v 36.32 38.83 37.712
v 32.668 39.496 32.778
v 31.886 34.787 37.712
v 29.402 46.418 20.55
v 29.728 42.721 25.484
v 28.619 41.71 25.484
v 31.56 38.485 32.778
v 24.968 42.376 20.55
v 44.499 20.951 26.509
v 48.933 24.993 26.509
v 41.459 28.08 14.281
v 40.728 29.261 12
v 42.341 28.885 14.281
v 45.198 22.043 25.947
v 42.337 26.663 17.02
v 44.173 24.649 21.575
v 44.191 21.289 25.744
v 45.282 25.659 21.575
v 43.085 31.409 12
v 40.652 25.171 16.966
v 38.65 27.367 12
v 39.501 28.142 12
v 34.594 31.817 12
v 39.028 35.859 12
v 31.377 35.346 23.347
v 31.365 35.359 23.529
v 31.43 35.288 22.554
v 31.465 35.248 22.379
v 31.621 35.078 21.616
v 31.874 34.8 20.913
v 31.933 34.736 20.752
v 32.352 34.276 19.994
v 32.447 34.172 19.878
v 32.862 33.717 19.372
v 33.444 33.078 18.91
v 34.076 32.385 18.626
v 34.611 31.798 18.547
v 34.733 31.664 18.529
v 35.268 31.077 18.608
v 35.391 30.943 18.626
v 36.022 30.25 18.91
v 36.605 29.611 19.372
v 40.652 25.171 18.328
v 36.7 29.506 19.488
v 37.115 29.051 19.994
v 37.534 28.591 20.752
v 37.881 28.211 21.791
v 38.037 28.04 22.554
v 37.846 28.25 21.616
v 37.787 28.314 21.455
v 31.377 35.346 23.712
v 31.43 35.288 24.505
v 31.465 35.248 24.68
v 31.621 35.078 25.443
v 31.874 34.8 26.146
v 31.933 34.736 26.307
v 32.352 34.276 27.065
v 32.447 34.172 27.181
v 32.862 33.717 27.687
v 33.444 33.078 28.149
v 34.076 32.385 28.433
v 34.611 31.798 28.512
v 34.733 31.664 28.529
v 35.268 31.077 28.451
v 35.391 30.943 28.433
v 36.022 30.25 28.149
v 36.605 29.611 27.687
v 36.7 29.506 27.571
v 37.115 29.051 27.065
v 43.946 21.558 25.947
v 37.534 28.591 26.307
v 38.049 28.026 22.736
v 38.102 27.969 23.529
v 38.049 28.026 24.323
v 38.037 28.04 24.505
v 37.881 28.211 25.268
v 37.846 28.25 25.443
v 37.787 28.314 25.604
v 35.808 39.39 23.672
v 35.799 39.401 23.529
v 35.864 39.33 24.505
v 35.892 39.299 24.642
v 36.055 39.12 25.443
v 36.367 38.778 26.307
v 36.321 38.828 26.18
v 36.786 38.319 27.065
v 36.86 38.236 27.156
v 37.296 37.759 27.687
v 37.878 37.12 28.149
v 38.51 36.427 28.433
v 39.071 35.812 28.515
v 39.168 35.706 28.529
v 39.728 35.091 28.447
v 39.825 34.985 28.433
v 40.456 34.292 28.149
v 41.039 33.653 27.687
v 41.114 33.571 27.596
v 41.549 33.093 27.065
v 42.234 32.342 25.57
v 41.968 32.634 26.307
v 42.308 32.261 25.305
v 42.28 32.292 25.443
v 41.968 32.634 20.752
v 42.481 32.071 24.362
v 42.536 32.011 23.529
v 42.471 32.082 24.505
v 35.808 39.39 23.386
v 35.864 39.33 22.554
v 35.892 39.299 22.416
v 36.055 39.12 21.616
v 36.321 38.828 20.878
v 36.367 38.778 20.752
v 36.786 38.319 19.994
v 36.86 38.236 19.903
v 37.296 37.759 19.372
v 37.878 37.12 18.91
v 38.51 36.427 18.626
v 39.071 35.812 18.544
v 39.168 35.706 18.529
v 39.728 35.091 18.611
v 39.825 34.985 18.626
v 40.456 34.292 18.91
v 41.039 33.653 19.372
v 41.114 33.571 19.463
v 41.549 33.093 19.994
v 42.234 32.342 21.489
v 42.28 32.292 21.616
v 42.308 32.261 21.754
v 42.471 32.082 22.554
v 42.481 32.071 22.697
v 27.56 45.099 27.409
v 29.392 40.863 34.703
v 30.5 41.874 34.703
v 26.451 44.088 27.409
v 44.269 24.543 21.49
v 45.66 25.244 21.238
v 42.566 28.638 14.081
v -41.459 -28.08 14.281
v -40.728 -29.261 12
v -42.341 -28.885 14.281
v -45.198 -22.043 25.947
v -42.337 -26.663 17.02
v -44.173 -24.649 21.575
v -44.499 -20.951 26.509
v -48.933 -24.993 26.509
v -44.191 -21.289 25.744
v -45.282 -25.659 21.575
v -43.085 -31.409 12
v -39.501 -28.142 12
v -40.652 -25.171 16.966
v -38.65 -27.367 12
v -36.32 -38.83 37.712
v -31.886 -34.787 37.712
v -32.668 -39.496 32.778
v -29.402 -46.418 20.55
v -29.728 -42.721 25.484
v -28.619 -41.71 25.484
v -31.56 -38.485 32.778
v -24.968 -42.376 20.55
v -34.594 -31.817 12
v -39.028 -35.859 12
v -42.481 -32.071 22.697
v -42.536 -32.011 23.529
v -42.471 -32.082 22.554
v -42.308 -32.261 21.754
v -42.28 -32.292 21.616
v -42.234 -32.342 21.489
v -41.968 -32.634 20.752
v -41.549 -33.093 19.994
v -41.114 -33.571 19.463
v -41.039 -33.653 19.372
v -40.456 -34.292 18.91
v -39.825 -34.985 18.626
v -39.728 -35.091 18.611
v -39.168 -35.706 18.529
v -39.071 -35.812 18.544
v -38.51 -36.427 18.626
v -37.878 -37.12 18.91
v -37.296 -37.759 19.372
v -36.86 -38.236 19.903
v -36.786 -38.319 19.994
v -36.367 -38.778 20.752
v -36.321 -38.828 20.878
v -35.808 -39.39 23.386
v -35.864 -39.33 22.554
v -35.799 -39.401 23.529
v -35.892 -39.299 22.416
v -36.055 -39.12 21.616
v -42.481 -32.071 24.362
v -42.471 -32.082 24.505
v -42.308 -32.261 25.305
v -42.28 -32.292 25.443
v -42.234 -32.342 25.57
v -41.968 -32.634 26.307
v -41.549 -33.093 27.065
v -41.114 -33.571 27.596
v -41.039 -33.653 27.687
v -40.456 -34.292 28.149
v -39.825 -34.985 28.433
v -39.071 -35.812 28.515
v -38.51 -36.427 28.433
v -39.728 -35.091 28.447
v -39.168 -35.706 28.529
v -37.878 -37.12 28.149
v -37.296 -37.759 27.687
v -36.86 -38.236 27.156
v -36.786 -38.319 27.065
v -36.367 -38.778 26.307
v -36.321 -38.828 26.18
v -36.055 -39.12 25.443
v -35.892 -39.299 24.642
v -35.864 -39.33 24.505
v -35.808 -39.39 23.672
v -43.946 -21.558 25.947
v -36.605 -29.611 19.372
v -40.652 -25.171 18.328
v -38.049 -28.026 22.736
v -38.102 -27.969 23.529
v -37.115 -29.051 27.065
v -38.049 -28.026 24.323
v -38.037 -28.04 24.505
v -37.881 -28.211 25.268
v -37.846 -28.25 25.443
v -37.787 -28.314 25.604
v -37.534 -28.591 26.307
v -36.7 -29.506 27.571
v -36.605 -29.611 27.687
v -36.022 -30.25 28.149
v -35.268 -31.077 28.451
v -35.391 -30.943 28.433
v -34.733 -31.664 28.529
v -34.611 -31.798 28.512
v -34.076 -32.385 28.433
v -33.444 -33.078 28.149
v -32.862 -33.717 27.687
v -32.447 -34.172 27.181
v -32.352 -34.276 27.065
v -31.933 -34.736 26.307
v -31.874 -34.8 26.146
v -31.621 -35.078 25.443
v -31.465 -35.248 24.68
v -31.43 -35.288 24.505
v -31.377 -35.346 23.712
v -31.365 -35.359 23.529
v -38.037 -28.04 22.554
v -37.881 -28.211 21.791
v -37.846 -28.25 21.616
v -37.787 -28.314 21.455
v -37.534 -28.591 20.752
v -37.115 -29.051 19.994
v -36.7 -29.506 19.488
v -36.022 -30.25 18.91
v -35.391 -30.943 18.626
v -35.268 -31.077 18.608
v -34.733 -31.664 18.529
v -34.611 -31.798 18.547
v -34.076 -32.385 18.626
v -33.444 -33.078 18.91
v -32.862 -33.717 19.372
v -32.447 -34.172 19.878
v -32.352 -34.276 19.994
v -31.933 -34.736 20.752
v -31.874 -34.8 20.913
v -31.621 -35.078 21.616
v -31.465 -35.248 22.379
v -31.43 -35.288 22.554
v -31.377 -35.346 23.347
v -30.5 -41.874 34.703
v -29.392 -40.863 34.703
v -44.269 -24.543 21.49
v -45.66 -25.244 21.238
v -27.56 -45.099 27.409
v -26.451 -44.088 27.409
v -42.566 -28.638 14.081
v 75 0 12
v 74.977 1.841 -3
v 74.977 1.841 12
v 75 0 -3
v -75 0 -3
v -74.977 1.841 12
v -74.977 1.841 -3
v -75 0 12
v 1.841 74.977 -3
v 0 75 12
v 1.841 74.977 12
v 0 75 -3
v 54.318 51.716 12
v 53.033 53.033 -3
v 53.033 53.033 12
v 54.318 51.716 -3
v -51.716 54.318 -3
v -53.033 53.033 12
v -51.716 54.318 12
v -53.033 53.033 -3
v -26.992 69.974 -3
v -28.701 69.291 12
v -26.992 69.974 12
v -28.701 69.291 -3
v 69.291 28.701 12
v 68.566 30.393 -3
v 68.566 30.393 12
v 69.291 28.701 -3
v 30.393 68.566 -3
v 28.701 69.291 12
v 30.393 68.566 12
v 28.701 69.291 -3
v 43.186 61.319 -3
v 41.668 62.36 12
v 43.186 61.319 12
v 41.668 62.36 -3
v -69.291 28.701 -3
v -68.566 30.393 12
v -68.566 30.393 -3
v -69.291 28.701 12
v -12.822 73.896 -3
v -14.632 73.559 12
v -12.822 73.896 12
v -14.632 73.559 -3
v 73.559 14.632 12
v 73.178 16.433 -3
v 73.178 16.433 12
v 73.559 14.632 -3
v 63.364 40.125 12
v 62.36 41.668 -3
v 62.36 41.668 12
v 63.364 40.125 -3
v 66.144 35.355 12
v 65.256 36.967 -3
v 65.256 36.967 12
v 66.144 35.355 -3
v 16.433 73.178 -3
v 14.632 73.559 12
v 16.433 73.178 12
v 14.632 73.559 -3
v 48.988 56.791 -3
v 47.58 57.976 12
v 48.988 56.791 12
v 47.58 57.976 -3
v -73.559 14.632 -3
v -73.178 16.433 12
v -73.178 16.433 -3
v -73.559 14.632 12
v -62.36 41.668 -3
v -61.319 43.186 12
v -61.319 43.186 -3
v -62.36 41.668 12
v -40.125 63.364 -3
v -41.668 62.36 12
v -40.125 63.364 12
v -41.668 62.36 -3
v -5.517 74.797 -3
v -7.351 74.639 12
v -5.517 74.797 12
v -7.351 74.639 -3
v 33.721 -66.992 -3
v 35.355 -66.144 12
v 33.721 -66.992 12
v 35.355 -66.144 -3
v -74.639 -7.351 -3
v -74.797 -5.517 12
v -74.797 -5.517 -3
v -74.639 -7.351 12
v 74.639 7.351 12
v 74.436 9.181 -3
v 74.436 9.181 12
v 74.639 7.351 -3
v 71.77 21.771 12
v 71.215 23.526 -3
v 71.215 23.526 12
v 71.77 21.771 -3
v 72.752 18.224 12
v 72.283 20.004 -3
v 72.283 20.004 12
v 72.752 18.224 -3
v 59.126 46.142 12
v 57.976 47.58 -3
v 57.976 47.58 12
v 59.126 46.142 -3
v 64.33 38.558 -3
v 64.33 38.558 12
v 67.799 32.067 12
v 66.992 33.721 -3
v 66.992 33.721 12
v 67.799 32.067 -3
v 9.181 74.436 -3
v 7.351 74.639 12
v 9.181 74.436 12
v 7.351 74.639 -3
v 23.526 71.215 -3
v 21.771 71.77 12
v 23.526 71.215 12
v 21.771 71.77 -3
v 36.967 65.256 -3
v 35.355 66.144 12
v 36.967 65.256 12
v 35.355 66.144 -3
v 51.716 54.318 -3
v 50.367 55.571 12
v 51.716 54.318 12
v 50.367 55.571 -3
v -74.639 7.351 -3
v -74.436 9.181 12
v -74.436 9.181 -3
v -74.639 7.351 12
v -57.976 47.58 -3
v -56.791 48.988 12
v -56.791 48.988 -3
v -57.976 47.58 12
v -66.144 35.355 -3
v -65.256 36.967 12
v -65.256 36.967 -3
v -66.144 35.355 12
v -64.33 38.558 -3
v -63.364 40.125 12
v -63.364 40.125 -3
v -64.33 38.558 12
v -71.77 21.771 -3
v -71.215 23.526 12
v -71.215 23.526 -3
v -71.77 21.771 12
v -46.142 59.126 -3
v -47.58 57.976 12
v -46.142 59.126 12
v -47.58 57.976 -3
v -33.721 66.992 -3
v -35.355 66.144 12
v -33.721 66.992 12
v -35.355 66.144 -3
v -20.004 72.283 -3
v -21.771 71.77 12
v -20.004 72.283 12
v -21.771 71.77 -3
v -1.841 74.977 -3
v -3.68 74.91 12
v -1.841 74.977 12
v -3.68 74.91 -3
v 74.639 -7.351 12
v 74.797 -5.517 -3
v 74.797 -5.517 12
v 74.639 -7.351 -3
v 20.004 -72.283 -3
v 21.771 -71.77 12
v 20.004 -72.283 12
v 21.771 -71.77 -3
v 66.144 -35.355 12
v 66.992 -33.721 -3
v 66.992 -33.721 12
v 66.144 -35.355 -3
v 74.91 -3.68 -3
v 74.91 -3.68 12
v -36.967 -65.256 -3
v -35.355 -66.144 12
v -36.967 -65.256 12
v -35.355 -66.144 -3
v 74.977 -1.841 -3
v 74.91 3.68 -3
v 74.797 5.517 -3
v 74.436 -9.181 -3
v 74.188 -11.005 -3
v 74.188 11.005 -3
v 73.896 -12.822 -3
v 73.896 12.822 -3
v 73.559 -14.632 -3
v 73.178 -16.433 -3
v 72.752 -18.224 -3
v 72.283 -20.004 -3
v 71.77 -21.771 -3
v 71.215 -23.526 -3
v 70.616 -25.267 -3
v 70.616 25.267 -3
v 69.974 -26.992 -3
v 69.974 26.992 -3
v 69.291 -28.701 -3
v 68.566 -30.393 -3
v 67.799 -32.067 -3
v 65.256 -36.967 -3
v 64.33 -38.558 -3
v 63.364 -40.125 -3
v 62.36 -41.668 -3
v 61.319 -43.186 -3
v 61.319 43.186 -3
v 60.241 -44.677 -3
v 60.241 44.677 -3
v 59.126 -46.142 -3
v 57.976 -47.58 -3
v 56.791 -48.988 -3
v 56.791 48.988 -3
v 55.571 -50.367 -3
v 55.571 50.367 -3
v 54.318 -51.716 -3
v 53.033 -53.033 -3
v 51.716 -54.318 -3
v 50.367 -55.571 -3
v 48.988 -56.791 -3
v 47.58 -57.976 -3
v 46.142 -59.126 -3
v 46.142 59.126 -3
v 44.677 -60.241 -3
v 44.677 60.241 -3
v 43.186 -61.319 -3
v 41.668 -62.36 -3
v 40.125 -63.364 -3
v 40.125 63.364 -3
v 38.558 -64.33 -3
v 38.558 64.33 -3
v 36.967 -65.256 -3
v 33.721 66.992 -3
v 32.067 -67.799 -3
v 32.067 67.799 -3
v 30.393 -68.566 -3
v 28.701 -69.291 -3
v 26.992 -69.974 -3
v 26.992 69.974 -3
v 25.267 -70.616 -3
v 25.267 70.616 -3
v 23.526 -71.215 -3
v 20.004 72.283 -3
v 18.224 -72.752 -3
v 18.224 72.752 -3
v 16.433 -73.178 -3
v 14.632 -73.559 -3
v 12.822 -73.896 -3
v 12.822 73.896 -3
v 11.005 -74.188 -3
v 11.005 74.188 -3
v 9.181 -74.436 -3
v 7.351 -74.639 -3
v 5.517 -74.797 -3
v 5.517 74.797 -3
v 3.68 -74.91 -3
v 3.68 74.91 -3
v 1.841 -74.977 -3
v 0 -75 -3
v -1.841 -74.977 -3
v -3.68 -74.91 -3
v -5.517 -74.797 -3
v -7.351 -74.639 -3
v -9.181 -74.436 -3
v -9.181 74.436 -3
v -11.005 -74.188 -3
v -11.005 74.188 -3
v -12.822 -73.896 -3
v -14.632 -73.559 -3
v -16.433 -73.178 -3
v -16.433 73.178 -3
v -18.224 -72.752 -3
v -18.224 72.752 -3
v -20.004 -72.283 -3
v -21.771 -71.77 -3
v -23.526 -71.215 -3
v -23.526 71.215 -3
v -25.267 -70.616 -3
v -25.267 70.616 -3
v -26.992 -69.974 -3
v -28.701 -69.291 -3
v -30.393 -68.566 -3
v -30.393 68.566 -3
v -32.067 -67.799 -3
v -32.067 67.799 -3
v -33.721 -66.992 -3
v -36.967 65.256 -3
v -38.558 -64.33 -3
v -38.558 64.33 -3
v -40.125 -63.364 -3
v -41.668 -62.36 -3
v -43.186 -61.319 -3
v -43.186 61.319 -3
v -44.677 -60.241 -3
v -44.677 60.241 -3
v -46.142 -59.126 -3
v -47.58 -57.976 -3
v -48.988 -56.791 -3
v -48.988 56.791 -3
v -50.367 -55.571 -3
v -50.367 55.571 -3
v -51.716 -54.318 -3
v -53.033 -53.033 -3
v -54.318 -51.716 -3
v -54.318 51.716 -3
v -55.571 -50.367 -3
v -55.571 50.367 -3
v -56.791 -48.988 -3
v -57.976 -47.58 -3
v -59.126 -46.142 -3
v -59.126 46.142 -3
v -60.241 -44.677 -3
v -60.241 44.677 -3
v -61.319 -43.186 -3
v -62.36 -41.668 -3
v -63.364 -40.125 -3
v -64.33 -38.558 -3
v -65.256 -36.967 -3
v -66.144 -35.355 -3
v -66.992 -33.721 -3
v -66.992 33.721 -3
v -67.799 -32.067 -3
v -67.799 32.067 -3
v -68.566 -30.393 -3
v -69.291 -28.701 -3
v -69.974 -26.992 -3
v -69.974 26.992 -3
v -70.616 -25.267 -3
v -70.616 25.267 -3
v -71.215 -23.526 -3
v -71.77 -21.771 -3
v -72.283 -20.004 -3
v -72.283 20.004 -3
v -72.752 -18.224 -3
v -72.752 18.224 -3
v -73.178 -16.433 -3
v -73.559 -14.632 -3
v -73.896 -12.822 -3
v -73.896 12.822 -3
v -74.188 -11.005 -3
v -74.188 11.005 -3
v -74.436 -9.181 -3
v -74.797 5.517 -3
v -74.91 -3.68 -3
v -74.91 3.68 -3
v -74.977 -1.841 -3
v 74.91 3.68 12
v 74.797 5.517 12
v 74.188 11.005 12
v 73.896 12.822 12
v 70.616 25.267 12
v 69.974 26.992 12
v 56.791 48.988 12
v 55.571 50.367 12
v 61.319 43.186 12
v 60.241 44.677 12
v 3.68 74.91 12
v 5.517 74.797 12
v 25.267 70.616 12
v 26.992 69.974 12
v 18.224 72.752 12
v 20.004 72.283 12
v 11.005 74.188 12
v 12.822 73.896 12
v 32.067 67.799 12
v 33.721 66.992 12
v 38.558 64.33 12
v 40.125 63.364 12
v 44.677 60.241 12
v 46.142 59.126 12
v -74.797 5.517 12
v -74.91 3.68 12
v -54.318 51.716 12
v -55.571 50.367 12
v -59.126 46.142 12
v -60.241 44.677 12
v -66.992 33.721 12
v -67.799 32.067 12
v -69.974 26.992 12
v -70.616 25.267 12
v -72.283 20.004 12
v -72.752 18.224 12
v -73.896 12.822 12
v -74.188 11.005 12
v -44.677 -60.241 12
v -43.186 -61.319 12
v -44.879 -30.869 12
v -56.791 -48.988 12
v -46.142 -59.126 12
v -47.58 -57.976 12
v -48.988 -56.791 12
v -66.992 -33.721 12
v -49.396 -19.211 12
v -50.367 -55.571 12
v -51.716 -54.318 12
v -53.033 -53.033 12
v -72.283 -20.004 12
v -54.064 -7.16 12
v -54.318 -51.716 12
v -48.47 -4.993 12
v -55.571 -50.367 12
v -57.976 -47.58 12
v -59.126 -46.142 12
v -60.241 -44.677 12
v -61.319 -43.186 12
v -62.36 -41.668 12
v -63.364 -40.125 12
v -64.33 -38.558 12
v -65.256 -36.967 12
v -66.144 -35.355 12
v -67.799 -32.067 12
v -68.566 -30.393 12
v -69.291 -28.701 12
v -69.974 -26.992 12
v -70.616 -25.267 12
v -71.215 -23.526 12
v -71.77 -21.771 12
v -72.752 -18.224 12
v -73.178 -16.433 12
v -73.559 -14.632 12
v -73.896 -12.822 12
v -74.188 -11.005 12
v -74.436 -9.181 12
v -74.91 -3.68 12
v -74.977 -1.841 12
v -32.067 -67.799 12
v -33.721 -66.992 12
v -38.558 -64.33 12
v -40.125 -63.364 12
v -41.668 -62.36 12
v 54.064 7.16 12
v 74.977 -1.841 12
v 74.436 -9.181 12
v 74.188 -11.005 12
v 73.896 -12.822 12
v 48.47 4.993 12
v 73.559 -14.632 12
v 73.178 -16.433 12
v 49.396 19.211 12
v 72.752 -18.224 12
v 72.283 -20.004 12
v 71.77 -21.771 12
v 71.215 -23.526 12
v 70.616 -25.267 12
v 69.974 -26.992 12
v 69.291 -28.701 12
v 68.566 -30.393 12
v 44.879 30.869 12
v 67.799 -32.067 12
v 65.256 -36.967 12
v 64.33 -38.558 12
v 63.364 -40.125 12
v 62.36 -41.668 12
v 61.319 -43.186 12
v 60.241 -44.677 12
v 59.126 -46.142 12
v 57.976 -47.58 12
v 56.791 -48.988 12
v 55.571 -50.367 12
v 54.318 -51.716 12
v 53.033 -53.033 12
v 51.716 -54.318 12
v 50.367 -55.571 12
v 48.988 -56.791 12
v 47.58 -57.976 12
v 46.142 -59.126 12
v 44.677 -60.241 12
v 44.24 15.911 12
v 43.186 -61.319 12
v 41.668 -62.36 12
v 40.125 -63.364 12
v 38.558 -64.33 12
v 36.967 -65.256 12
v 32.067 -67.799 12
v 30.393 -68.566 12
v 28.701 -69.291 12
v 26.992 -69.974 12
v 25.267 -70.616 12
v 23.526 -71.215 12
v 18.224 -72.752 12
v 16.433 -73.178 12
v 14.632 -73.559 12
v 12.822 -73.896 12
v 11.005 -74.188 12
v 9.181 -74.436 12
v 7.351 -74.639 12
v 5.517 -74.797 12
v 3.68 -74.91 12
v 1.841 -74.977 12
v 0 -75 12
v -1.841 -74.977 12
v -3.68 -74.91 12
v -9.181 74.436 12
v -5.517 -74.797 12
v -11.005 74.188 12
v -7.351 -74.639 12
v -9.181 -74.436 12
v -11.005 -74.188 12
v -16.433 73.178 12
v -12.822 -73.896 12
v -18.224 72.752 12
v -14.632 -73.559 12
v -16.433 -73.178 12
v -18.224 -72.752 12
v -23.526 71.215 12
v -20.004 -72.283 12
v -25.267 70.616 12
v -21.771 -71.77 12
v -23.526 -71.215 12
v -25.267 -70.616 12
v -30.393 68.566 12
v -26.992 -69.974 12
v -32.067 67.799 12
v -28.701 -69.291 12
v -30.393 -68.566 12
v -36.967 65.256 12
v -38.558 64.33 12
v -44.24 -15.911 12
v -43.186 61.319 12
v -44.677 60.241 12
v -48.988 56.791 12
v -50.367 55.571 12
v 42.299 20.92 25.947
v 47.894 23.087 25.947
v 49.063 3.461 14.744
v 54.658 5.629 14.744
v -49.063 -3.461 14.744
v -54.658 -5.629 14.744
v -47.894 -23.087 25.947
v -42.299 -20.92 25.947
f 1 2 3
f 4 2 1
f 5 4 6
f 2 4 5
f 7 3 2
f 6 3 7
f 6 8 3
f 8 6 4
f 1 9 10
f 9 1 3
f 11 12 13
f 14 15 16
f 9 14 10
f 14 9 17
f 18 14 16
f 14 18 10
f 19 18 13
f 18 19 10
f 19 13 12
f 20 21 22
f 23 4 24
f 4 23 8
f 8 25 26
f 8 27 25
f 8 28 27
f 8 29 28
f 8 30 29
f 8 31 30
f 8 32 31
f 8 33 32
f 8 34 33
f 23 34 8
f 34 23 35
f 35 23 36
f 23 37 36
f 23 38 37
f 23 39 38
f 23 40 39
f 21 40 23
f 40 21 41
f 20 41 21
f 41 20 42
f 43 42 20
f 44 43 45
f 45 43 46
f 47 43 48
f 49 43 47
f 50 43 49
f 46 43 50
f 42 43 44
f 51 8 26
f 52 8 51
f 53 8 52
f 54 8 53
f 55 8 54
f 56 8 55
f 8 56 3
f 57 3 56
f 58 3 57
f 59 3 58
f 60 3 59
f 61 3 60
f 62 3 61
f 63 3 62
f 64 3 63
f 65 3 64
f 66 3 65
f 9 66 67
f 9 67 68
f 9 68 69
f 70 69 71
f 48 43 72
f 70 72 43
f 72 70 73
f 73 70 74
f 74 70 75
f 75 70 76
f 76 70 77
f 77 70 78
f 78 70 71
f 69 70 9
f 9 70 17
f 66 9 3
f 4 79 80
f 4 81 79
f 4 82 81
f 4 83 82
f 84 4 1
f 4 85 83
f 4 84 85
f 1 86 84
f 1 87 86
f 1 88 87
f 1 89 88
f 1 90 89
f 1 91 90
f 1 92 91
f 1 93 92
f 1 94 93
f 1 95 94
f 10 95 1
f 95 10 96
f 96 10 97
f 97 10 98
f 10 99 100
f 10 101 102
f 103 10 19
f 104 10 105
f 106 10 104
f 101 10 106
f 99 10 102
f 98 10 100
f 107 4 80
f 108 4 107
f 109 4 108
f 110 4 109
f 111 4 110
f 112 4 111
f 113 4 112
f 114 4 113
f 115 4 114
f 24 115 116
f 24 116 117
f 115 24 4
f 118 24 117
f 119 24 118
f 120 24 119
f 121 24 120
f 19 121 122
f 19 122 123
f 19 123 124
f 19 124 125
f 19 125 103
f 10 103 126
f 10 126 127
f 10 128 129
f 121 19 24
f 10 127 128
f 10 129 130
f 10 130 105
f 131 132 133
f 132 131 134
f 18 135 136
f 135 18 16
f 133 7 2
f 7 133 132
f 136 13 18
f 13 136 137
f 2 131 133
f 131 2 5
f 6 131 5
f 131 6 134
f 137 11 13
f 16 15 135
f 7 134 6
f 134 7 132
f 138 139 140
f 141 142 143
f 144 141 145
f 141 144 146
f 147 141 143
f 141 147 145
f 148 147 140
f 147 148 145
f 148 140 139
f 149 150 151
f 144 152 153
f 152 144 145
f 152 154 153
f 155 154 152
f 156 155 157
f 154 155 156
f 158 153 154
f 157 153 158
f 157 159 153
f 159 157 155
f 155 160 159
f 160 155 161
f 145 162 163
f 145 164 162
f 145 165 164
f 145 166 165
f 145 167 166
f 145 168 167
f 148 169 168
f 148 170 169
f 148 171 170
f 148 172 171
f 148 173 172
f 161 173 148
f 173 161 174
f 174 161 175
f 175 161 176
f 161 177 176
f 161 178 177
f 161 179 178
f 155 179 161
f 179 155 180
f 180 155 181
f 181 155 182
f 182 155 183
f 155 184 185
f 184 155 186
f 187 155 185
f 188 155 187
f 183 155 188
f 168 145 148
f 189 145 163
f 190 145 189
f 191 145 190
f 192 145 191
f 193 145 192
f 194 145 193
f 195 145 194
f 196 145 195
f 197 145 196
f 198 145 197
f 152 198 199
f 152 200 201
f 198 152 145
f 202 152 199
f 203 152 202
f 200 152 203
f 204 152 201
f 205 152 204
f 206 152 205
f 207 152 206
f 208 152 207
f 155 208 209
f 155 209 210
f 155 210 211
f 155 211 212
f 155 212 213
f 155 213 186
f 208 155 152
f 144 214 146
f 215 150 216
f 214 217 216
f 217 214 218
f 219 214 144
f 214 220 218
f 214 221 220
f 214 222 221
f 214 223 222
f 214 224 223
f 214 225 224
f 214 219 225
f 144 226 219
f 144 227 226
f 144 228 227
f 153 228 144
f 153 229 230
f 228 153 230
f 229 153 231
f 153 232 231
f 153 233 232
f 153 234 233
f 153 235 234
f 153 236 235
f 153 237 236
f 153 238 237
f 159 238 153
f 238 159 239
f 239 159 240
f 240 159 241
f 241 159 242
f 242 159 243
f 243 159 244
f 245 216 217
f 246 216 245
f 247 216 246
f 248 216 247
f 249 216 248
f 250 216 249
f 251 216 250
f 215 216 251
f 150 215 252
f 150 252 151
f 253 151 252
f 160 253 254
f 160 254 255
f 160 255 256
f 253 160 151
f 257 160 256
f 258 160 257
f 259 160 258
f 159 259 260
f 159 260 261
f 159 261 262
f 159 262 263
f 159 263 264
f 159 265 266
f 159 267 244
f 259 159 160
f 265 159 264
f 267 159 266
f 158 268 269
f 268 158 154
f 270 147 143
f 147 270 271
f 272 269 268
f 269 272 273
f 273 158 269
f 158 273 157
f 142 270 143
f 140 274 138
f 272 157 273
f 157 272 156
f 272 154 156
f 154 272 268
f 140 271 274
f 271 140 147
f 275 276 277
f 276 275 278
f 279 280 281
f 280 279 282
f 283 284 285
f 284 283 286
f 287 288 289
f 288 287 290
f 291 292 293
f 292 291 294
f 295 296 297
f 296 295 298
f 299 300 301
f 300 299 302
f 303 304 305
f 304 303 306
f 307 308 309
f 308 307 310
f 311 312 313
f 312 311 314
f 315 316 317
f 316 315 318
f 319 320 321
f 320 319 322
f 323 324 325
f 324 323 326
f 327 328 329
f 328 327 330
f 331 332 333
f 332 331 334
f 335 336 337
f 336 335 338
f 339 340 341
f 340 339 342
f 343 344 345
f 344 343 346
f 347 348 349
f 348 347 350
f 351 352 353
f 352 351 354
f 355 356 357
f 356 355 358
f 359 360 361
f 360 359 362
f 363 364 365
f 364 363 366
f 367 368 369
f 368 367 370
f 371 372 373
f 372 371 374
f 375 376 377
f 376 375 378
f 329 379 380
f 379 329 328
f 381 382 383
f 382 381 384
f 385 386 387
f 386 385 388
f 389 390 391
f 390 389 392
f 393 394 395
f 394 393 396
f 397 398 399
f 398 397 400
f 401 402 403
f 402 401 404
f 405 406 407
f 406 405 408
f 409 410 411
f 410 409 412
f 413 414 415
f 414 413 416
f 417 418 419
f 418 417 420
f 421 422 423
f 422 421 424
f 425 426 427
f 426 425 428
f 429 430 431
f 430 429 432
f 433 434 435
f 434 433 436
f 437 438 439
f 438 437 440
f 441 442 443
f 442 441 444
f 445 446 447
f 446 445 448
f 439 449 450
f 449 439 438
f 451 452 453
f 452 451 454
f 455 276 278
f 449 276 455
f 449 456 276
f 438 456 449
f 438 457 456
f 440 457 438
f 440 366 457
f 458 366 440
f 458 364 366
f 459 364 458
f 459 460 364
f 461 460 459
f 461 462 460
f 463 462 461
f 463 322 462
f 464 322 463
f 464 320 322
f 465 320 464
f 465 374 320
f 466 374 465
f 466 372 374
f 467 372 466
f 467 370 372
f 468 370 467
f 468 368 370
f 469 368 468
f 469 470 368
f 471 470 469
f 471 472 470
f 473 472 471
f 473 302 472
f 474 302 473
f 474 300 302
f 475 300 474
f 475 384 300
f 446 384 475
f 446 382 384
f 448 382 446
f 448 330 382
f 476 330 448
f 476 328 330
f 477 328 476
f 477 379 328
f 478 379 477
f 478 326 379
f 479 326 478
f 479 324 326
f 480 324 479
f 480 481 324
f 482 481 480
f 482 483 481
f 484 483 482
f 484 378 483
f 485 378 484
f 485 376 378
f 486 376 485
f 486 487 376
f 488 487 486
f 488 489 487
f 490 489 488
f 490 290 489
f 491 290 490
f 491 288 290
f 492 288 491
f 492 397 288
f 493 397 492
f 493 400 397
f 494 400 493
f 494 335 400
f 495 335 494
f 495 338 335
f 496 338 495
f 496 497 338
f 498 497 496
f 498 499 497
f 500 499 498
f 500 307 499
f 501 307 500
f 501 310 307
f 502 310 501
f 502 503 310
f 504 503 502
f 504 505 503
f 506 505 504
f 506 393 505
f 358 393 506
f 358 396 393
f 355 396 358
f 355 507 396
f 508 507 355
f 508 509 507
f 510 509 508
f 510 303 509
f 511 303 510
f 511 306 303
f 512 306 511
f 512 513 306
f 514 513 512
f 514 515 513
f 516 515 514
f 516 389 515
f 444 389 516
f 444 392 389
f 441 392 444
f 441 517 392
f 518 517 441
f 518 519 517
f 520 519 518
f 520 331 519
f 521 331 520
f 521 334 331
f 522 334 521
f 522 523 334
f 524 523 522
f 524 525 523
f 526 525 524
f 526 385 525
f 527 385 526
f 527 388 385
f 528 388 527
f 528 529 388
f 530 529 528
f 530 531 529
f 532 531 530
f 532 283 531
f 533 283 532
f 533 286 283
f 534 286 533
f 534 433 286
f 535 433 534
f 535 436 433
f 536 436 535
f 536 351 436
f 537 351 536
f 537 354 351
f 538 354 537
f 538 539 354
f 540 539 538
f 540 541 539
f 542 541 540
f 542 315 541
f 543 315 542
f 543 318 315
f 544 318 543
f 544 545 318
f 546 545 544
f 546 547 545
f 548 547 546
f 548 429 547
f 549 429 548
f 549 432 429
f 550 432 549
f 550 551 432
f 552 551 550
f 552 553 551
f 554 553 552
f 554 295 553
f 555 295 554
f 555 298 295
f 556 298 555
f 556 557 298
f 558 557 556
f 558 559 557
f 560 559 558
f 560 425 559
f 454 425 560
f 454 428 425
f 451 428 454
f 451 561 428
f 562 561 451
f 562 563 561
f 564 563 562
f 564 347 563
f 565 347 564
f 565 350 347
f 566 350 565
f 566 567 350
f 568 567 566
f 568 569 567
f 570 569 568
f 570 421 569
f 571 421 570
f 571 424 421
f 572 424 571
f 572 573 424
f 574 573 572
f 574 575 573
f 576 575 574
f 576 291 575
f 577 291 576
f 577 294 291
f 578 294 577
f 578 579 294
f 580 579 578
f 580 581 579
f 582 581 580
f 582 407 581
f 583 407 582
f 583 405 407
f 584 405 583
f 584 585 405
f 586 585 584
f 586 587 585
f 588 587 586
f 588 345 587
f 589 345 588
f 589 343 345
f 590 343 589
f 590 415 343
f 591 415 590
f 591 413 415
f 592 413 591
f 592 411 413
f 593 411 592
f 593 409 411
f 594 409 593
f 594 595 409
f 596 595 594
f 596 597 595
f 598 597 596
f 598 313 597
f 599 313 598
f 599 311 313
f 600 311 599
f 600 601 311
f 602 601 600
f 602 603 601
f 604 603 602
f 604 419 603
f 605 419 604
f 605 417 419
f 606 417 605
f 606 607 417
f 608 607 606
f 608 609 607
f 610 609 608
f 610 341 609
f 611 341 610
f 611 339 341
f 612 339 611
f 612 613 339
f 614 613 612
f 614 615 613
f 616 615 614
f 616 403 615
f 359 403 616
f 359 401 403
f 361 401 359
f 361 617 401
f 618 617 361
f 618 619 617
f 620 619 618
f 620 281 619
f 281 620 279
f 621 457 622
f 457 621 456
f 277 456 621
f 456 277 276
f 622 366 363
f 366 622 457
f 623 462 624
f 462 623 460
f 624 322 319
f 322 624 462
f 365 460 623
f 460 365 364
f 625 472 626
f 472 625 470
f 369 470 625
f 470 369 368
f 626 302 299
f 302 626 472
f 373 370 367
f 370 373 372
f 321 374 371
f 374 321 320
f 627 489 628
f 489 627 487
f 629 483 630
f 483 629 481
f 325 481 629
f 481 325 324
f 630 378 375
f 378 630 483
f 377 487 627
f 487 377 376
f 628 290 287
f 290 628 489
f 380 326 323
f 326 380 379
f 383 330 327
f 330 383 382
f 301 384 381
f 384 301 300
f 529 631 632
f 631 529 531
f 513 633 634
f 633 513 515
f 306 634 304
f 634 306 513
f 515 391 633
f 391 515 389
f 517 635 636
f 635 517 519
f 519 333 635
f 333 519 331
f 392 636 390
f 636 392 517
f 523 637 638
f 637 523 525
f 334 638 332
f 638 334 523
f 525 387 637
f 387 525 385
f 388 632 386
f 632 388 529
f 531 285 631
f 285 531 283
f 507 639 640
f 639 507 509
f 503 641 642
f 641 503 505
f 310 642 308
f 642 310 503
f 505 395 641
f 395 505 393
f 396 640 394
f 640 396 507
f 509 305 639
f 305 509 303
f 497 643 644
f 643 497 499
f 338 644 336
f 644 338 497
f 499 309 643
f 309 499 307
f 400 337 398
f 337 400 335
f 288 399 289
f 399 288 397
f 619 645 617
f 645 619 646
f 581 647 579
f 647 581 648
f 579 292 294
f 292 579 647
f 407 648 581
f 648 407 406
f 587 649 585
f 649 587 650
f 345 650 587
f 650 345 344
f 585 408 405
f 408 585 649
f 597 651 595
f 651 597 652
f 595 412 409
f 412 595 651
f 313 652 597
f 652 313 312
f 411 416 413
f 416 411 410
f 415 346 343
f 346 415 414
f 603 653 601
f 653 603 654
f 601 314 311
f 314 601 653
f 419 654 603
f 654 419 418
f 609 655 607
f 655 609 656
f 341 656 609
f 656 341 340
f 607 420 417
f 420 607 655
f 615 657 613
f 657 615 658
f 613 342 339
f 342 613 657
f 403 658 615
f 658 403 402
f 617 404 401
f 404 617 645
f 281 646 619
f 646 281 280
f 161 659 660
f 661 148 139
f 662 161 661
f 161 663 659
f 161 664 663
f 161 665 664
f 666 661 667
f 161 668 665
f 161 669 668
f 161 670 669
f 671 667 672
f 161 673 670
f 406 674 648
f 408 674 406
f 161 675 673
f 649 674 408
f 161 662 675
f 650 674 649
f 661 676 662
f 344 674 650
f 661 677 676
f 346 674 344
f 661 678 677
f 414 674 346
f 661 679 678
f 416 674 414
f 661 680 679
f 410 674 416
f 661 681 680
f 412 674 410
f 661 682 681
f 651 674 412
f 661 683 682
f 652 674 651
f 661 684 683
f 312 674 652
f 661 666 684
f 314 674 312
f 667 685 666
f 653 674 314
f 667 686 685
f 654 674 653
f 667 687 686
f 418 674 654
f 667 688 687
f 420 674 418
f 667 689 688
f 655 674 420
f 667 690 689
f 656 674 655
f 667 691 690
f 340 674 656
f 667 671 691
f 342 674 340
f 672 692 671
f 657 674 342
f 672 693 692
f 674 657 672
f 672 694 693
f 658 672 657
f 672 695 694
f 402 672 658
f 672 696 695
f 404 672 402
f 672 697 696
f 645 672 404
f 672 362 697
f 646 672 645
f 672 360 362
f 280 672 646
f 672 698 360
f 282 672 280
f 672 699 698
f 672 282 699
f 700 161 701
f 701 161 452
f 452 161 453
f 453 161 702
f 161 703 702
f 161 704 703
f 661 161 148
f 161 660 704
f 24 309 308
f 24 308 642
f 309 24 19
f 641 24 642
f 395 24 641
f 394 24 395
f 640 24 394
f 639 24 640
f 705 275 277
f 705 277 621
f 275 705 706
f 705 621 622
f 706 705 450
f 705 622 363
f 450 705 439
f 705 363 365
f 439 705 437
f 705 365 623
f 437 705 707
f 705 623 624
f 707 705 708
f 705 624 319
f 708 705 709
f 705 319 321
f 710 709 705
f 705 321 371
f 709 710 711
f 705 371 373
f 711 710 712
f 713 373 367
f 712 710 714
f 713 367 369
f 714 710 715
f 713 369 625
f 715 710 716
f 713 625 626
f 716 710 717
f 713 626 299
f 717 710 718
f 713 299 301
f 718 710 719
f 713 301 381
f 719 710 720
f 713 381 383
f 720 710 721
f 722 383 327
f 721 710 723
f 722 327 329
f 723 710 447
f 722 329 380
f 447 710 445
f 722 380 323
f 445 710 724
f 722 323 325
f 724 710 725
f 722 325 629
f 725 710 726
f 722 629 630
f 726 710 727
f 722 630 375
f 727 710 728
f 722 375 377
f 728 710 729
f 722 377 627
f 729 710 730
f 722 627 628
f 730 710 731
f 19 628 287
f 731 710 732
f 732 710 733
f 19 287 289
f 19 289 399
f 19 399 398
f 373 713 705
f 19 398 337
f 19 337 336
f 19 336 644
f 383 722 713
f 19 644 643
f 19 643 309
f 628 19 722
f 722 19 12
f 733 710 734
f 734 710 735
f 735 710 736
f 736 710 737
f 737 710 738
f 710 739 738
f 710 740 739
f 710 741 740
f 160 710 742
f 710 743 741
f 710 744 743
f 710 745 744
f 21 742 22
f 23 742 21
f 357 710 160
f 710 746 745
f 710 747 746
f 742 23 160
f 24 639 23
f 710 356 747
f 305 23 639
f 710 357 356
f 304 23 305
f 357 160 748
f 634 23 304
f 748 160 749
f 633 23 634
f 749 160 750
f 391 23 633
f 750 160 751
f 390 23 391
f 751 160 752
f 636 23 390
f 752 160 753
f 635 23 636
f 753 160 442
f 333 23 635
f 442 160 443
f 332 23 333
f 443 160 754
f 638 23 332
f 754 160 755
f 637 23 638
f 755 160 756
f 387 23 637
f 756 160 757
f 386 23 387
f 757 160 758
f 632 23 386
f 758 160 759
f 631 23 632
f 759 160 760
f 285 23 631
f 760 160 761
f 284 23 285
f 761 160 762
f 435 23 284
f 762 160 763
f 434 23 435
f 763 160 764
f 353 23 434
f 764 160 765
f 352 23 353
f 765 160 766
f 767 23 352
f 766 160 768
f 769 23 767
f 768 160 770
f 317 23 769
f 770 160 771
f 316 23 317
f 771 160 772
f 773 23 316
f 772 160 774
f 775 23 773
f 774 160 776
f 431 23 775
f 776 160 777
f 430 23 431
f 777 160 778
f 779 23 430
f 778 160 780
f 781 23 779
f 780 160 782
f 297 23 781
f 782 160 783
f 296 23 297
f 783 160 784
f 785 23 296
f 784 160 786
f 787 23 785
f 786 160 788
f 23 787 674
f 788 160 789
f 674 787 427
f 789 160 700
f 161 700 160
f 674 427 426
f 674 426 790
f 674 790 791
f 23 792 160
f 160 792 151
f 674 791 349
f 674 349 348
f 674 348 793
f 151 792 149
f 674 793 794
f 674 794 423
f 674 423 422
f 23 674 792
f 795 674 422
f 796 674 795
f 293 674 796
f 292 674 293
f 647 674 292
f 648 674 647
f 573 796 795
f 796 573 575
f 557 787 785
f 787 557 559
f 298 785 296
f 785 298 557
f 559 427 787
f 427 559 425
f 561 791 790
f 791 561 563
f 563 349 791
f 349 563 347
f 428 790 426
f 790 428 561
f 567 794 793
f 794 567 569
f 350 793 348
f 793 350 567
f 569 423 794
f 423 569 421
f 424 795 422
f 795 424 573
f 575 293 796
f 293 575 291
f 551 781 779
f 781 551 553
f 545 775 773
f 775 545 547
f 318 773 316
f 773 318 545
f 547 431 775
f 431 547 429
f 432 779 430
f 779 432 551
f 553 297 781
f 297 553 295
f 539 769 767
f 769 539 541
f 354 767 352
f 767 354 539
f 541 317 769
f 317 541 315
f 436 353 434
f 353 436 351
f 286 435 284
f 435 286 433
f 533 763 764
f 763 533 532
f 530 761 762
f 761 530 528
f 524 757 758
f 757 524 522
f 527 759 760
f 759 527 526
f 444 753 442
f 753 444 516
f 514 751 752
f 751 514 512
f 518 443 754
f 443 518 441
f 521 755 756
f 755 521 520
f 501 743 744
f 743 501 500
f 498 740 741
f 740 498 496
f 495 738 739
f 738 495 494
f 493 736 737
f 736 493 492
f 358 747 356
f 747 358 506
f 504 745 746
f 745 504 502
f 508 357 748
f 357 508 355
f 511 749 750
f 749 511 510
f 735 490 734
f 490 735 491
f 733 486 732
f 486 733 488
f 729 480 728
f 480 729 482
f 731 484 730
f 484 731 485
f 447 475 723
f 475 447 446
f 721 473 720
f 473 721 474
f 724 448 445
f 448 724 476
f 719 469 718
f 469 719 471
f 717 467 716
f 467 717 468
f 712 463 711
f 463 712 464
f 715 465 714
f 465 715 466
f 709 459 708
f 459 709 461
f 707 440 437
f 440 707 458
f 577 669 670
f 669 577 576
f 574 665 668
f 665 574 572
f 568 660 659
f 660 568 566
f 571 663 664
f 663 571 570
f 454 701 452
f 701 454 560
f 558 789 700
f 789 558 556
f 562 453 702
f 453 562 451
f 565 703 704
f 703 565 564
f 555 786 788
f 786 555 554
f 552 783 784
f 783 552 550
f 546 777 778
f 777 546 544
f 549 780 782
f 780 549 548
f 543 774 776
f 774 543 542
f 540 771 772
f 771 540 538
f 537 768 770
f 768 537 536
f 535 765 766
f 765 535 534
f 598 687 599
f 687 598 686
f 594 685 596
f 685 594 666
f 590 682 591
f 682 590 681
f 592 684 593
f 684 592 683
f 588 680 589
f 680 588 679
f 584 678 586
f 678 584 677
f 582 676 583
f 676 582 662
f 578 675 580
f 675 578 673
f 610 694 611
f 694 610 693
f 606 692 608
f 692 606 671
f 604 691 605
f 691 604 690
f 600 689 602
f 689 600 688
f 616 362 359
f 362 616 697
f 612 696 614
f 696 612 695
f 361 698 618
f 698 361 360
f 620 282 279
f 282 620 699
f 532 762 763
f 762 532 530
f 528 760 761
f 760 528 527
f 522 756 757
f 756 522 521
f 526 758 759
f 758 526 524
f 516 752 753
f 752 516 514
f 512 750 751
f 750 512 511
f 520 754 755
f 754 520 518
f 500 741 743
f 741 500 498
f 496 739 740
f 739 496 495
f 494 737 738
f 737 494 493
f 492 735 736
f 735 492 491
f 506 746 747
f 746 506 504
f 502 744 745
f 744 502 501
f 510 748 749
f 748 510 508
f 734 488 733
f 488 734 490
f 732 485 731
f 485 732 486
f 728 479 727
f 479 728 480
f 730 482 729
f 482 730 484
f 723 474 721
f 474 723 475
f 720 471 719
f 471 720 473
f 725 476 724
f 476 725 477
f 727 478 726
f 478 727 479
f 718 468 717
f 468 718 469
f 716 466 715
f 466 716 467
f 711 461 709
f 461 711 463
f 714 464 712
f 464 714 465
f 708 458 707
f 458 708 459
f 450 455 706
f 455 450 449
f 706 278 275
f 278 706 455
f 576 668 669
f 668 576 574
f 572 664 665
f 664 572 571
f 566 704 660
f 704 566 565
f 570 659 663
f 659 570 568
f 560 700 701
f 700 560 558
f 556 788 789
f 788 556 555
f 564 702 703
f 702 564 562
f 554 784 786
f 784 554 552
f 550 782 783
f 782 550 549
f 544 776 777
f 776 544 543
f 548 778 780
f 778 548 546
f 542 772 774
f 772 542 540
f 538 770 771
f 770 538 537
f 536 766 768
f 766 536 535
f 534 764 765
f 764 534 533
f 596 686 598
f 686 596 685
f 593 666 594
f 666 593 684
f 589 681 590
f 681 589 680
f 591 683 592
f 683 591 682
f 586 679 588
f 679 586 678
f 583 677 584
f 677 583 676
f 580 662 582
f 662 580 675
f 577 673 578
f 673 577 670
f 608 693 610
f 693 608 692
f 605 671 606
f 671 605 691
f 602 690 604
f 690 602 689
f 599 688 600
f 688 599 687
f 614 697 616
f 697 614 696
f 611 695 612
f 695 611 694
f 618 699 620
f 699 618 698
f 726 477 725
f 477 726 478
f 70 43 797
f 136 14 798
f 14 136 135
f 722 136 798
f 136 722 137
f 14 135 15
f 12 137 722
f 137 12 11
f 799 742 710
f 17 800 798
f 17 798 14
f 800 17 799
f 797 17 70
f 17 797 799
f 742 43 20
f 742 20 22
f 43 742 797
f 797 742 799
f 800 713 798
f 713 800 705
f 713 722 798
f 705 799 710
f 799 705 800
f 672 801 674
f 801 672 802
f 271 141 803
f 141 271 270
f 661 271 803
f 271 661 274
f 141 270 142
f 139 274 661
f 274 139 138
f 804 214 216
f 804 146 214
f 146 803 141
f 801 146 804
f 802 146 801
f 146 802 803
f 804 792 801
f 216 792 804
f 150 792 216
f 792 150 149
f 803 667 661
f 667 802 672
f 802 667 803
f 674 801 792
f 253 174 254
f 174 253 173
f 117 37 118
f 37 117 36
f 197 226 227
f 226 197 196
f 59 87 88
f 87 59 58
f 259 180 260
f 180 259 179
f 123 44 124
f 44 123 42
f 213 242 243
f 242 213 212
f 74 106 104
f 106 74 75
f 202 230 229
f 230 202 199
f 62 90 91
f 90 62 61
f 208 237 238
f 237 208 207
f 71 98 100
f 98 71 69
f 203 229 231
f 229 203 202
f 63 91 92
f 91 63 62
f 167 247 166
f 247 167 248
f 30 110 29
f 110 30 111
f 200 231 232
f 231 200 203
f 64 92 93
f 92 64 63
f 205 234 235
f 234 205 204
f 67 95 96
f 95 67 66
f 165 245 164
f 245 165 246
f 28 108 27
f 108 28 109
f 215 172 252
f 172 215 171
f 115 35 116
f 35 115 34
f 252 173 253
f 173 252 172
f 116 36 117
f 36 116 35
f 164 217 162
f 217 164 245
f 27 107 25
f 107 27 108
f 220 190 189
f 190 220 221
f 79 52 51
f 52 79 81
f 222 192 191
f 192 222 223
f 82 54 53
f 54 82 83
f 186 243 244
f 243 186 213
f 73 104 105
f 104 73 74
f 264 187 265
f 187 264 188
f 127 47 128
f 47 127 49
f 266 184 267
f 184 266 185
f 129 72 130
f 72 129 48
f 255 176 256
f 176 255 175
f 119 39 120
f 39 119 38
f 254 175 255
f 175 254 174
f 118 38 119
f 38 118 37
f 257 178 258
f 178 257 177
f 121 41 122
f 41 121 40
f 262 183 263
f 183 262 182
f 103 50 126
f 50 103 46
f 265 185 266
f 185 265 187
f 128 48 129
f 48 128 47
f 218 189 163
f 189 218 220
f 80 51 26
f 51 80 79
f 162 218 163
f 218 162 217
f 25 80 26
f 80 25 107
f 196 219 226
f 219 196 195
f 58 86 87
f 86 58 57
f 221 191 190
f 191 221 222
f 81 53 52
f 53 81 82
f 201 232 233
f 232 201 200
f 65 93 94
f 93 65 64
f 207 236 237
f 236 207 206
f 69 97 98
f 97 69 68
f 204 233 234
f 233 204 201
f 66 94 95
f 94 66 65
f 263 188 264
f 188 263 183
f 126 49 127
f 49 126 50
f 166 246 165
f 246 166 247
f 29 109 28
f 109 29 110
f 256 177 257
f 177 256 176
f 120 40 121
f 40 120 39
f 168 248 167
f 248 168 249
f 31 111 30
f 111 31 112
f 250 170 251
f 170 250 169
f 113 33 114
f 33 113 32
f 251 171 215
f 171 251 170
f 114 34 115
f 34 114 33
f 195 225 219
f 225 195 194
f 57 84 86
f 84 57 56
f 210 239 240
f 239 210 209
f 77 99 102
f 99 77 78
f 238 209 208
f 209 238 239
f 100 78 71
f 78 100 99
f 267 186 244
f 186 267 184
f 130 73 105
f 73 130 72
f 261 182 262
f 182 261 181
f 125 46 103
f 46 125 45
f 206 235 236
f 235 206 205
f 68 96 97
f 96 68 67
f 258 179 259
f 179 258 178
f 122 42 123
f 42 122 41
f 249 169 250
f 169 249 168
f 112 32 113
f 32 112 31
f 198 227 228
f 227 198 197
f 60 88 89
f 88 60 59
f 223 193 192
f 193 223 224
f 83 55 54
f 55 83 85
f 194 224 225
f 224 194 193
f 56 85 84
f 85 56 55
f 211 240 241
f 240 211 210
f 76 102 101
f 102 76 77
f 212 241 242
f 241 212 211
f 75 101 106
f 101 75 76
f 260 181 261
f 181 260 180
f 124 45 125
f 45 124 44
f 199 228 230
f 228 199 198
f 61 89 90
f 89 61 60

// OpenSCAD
difference(){
	union() {
		translate(v = [0, 0, -3]) {
			cylinder($fn = 256, center = false, h = 15, r = 75);
		}
		translate(v = [46.6236114702, 18.0620833094, 11.7647058824]) {
			rotate(a = [0, 30.8943255446, -68.8235294118]) {
				cube(center = true, size = [21.8185049322, 6, 20]);
			}
		}
		translate(v = [-46.6236114702, -18.0620833094, 11.7647058824]) {
			rotate(a = [0, -30.8943255446, -68.8235294118]) {
				cube(center = true, size = [21.8185049322, 6, 20]);
			}
		}
		union() {
			translate(v = [36.9504458610, 33.6847821823, 23.5294117647]) {
				rotate(a = [0, 30.8943255446, -47.6470588235]) {
					union() {
						cube(center = true, size = [21.8185049322, 6, 20]);
						cube(center = true, size = [29.3185049322, 1.5000000000, 8.5000000000]);
					}
				}
			}
		}
		union() {
			translate(v = [-36.9504458610, -33.6847821823, 23.5294117647]) {
				rotate(a = [0, -30.8943255446, -47.6470588235]) {
					union() {
						cube(center = true, size = [21.8185049322, 6, 20]);
						cube(center = true, size = [29.3185049322, 1.5000000000, 8.5000000000]);
					}
				}
			}
		}
	}
	/* Holes Below*/
	union(){
		union(){
			translate(v = [0, 0, 23.5294117647]) {
				rotate(a = [0, 90, 42.3529411765]) {
					cylinder($fn = 32, center = true, h = 150, r = 5);
				}
			}
		}
		union(){
			translate(v = [0, 0, 23.5294117647]) {
				rotate(a = [0, 90, 42.3529411765]) {
					cylinder($fn = 32, center = true, h = 150, r = 5);
				}
			}
		}
	} /* End Holes */ 
}
